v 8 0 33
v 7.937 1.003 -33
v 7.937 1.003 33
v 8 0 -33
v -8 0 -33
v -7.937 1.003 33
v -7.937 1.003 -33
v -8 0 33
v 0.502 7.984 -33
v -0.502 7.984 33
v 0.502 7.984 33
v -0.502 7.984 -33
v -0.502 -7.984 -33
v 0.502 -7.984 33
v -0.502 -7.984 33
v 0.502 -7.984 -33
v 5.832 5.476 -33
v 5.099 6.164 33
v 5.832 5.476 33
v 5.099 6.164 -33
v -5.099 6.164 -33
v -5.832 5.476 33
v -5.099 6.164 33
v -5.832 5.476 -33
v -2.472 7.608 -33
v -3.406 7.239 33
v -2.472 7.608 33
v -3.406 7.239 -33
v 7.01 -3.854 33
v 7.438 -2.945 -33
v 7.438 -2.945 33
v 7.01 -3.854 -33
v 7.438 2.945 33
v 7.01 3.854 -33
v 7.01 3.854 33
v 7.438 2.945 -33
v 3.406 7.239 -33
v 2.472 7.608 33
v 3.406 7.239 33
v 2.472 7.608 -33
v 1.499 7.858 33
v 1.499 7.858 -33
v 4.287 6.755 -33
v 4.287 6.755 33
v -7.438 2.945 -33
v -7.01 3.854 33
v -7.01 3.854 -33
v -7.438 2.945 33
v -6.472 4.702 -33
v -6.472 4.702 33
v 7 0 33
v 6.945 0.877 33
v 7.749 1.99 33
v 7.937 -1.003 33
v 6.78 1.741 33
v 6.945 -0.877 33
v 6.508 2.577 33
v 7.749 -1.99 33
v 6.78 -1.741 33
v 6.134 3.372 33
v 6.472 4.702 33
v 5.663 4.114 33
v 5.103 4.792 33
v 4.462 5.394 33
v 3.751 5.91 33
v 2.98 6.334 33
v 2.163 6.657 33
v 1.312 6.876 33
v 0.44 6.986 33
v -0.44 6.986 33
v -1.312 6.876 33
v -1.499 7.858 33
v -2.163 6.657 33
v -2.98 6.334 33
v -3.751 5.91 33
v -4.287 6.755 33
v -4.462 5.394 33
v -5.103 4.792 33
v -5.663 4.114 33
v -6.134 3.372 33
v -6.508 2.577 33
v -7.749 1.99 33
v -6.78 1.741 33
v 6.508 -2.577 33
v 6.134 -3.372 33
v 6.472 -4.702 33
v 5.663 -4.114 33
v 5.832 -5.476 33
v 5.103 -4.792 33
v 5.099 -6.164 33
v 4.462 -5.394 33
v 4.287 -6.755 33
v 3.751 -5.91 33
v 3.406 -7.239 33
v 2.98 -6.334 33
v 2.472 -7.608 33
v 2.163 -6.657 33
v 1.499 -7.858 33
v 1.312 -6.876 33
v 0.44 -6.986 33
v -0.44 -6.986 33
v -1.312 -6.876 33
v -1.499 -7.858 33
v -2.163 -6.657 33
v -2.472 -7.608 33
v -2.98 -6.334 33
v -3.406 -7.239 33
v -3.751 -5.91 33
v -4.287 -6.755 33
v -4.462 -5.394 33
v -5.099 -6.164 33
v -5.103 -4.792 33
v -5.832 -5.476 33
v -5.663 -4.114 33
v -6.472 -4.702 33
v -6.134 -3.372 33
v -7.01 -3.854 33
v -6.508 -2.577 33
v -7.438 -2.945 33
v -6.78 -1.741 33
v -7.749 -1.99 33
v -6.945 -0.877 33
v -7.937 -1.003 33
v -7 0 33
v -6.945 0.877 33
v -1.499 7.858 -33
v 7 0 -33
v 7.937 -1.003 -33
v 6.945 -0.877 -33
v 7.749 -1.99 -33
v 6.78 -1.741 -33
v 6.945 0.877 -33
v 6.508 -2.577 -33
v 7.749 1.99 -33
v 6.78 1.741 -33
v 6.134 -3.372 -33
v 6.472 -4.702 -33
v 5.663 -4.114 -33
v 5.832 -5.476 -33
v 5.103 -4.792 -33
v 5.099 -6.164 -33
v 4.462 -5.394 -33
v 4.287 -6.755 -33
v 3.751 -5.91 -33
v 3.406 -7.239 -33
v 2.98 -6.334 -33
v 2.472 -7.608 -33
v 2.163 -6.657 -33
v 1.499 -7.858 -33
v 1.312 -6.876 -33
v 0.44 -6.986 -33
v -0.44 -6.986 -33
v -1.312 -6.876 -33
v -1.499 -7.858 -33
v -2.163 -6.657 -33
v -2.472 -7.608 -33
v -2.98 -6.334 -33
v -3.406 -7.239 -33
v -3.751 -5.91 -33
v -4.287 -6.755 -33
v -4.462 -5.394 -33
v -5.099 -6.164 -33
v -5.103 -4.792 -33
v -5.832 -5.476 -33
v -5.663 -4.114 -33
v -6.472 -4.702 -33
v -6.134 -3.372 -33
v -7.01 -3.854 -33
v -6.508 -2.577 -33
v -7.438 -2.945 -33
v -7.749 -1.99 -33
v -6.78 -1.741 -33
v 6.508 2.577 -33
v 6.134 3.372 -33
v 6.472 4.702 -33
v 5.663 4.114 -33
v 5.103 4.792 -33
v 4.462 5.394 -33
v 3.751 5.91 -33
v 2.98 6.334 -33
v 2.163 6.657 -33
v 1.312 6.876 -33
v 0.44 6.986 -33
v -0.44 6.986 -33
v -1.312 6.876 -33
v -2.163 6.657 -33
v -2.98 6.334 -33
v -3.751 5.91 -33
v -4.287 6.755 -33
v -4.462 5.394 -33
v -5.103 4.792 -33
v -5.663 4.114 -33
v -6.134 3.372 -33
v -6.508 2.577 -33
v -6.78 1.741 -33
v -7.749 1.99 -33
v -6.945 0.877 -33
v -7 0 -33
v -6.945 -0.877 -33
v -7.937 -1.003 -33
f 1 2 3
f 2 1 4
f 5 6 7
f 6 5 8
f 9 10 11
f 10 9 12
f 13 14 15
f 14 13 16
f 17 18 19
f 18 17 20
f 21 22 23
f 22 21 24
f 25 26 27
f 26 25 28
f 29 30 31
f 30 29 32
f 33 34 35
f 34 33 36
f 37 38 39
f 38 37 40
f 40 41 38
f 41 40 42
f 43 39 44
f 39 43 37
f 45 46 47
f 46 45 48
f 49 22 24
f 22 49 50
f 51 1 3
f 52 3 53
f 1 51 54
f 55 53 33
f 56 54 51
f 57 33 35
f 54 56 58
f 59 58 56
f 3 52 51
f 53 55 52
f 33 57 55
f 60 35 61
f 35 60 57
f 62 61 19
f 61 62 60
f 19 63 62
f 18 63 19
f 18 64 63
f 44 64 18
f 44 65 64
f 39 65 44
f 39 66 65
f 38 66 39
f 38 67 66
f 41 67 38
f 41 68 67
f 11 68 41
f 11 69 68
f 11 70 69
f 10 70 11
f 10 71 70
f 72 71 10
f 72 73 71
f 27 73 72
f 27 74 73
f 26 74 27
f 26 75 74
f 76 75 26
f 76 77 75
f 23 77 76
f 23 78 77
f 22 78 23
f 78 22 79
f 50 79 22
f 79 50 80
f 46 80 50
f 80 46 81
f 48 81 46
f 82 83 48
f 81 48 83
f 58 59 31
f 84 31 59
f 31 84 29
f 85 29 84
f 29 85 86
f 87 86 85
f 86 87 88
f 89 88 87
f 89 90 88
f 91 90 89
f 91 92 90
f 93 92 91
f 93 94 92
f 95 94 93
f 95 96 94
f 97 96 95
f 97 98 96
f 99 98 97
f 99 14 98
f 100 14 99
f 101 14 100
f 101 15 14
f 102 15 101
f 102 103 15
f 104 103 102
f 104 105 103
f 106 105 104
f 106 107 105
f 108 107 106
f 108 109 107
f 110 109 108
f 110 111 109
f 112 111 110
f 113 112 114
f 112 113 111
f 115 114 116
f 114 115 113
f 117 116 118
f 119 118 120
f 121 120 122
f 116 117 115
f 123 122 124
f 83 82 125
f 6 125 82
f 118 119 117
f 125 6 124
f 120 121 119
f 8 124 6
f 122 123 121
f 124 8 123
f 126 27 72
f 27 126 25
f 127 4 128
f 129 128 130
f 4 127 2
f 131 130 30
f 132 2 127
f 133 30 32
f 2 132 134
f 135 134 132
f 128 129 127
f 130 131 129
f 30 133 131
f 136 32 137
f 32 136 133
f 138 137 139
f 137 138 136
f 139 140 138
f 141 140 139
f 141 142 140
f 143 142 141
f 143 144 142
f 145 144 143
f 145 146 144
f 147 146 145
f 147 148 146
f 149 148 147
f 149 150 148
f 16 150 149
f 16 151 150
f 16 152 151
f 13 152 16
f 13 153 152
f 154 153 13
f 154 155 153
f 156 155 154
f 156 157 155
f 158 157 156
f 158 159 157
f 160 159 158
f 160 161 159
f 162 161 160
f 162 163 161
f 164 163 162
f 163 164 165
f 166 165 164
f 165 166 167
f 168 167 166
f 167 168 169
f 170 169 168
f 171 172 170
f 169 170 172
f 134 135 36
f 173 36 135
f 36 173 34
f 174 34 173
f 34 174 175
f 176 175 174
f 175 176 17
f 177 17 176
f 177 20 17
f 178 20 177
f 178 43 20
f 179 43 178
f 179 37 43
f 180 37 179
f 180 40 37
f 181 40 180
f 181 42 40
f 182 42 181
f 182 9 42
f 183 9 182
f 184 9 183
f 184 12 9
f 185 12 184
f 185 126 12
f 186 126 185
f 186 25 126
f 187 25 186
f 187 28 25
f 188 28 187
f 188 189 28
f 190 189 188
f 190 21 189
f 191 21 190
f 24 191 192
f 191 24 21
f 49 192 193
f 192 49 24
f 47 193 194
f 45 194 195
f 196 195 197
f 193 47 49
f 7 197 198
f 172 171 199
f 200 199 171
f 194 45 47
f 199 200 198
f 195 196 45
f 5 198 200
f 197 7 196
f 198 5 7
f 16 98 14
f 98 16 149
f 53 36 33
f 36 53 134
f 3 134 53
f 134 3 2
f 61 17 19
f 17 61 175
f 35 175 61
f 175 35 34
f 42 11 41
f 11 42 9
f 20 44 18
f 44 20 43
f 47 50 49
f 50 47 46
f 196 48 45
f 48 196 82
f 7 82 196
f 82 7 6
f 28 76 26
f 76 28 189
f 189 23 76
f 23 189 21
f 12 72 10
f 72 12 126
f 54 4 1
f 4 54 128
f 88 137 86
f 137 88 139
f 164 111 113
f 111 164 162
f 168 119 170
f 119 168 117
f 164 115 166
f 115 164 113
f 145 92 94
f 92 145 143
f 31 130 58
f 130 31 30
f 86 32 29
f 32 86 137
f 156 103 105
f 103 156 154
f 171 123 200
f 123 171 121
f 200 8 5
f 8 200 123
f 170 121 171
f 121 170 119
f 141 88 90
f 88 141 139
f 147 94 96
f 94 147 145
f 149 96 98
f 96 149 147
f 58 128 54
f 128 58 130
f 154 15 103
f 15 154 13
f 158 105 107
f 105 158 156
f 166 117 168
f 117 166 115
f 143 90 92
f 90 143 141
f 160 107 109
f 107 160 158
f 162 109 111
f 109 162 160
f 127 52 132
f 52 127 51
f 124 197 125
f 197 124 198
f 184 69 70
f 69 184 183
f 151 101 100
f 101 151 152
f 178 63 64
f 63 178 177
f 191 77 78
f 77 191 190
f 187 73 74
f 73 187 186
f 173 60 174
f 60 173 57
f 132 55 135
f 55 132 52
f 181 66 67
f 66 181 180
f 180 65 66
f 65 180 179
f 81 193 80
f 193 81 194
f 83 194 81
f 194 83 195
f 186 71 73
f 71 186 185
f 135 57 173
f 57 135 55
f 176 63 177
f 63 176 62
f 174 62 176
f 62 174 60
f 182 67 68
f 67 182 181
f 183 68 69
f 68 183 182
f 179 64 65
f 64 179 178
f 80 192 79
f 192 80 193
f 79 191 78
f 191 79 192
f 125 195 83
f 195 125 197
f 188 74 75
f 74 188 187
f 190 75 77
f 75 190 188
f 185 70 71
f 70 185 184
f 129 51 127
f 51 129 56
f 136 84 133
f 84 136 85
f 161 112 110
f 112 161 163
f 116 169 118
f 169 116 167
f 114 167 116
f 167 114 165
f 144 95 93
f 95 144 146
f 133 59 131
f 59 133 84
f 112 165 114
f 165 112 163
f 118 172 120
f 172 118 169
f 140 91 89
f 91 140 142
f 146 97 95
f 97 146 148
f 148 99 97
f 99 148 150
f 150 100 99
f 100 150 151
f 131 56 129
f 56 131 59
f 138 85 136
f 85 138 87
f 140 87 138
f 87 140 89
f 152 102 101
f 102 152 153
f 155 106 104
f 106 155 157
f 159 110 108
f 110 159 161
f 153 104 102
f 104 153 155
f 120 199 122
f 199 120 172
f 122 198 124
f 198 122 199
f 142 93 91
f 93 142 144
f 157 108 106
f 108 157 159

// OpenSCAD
$fn = 50;


difference() {
	union() {
		translate(v = [0, 0, -33.0000000000]) {
			cylinder(h = 66, r = 8.0000000000);
		}
	}
	union() {
		translate(v = [0, 0, -100.0000000000]) {
			cylinder(h = 200, r = 7);
		}
	}
}
